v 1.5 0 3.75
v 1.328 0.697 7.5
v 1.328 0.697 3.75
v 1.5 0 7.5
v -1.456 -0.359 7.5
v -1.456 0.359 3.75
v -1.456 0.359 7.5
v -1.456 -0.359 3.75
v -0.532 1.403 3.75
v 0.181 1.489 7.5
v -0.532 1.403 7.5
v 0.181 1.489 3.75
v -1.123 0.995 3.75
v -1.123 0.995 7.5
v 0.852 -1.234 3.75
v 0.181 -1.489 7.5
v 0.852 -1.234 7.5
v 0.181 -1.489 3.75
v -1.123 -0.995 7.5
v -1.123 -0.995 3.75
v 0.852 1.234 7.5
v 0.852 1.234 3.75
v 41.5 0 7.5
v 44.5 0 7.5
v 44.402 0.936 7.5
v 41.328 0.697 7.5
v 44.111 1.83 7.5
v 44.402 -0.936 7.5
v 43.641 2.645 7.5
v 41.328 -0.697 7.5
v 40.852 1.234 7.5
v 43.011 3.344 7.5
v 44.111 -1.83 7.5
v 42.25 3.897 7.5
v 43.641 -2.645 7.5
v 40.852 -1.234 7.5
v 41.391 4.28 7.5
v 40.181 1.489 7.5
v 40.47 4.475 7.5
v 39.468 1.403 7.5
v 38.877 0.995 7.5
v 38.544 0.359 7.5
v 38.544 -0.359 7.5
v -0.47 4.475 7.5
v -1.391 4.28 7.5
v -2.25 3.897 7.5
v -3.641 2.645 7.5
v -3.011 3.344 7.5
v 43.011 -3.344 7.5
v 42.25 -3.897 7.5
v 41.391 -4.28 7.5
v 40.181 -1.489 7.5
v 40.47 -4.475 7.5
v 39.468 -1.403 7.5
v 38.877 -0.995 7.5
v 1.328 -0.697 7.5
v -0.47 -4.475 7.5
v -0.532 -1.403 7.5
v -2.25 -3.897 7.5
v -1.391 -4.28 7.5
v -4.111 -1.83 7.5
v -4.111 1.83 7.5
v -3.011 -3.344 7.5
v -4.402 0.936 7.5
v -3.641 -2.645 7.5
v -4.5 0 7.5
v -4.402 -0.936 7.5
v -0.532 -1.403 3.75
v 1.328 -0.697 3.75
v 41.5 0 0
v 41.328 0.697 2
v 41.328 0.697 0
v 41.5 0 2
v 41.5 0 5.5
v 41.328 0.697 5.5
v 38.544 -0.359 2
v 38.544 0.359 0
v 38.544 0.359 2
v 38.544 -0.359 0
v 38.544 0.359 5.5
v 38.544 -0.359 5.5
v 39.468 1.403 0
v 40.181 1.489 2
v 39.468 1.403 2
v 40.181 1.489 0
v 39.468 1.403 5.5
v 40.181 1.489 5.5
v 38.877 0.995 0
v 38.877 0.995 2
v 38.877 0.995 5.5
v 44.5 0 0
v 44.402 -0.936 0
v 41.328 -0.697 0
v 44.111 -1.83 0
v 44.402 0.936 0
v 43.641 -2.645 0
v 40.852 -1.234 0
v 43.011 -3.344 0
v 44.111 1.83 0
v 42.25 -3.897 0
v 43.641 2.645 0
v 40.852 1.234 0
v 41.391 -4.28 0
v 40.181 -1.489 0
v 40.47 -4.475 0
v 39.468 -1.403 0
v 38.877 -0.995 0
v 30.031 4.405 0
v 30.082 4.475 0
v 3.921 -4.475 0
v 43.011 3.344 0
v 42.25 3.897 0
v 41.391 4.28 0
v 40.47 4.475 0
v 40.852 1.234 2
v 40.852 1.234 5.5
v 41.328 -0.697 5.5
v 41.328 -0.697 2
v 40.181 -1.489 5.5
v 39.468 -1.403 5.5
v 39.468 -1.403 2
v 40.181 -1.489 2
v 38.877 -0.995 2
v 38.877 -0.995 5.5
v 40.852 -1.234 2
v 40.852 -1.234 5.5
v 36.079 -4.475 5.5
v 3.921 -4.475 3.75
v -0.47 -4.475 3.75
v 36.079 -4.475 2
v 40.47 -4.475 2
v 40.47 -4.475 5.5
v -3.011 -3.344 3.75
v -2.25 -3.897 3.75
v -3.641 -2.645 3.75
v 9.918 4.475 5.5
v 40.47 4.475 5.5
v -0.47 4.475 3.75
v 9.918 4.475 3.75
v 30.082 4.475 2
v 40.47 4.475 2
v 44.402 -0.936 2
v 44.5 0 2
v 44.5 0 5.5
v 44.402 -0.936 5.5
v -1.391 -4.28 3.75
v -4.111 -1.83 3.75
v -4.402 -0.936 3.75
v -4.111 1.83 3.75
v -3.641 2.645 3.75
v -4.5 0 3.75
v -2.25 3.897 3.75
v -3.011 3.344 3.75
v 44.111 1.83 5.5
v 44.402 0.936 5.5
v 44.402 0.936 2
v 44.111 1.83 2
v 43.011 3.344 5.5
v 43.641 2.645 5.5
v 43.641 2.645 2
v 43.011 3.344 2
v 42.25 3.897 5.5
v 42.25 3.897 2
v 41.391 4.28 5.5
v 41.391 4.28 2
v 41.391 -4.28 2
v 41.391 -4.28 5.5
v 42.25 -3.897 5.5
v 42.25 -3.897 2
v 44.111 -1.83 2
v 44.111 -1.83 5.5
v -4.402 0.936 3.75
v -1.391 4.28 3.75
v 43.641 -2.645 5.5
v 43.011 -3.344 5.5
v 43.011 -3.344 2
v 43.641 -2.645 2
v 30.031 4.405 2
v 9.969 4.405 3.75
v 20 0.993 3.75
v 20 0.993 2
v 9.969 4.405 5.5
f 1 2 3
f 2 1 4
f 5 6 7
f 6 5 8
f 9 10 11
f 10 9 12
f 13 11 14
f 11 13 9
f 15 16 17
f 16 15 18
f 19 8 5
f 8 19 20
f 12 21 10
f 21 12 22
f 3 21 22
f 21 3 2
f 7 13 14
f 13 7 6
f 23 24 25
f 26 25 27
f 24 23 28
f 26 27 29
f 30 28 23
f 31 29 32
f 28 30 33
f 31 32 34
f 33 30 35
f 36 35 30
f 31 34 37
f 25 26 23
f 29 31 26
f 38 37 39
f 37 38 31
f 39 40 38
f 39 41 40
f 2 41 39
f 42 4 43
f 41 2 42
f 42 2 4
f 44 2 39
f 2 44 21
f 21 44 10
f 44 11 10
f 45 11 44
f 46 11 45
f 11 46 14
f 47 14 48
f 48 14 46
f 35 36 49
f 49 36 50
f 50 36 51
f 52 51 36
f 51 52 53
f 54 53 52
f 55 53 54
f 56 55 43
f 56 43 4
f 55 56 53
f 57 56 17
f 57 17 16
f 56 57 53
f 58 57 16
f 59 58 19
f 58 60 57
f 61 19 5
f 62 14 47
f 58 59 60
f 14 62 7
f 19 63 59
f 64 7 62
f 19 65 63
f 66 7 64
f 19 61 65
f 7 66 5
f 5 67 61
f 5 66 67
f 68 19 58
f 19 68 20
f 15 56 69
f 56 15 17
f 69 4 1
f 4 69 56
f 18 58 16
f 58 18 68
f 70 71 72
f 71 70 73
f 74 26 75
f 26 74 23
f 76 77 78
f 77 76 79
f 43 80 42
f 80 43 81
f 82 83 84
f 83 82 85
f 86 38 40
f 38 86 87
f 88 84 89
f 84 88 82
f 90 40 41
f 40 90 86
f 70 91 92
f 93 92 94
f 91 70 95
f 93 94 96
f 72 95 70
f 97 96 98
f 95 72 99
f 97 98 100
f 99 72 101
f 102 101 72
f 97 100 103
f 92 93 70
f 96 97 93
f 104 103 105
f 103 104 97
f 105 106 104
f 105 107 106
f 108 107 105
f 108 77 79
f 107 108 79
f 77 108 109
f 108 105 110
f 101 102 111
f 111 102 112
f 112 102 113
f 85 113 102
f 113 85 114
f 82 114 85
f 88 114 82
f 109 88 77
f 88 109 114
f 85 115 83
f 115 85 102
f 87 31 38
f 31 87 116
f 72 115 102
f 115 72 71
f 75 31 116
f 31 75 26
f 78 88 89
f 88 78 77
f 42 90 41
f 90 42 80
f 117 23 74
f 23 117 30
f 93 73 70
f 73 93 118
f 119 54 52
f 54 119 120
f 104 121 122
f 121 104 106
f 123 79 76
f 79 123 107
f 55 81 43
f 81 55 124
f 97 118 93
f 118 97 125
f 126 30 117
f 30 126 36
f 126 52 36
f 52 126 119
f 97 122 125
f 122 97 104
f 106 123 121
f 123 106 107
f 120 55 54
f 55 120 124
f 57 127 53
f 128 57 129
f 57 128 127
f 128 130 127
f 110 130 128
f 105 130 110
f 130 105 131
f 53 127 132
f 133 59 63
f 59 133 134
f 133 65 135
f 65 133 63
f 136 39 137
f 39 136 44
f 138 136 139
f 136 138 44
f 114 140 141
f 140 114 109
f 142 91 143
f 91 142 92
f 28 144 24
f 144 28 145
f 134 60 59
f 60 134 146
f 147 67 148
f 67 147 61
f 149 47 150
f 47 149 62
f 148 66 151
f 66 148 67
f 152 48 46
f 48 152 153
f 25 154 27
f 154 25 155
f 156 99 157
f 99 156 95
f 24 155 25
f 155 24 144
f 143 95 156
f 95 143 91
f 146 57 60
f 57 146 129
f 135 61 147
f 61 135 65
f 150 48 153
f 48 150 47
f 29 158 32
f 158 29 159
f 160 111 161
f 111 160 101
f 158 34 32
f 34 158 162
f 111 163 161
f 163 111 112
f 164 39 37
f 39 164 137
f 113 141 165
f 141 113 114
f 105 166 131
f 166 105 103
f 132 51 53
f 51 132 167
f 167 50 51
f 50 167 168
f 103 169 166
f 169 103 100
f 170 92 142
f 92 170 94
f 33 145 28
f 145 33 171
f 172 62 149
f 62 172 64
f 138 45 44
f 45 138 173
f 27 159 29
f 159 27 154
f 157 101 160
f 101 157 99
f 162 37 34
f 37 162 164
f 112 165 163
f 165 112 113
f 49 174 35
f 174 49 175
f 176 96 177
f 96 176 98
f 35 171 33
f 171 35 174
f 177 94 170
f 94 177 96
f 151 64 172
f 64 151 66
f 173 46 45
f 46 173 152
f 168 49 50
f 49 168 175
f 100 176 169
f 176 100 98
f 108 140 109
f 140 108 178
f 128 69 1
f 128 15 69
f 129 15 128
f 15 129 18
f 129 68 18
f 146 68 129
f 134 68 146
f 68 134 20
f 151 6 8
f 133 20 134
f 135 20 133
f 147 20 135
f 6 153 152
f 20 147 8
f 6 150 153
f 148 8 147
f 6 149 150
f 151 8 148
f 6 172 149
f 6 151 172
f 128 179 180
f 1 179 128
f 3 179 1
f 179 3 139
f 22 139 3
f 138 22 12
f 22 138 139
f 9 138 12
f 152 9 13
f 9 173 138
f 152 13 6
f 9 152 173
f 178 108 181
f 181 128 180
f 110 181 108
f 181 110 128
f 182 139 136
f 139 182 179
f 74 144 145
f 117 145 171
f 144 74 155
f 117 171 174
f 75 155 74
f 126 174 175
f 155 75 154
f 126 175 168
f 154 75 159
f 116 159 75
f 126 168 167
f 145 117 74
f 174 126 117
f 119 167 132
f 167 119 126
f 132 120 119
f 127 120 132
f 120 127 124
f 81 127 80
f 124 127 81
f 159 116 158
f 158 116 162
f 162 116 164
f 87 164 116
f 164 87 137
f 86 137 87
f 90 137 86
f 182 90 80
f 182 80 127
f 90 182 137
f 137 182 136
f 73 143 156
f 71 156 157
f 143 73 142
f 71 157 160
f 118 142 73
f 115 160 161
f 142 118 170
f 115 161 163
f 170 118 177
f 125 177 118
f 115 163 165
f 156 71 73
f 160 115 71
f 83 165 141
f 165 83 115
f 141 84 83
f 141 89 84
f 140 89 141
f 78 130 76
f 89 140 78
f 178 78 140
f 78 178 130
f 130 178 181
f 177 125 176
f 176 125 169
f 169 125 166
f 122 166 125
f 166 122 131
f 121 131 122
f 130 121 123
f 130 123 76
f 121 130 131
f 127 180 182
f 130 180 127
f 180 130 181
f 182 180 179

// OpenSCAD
$fs=.75;

difference(){
	difference() {
		union() {
			hull() {
				cylinder(h = 7.5000000000, r = 4.5000000000);
				translate(v = [40, 0, 0]) {
					cylinder(h = 7.5000000000, r = 4.5000000000);
				}
			}
			translate(v = [40, 0, 0]) {
			}
		}
		translate(v = [0, 0, 1.8750000000]) {
			hull() {
				translate(v = [-0.0000000000, -0.0000000000, -1.8750000000]) {
					cylinder(h = 3.7500000000, r = 5.5000000000);
				}
				translate(v = [30.0000000000, 4.5000000000, 0]) {
					translate(v = [-0.0000000000, -0.0000000000, -1.8750000000]) {
						cylinder(h = 3.7500000000, r = 0.1000000000);
					}
				}
			}
		}
		translate(v = [40, 0, 3.7500000000]) {
			mirror(v = [1, 0, 0]) {
				hull() {
					translate(v = [-0.0000000000, -0.0000000000, -1.7500000000]) {
						cylinder(h = 3.5000000000, r = 5.5000000000);
					}
					translate(v = [30.0000000000, 4.5000000000, 0]) {
						translate(v = [-0.0000000000, -0.0000000000, -1.7500000000]) {
							cylinder(h = 3.5000000000, r = 0.1000000000);
						}
					}
				}
			}
		}
	}
	/* Holes Below*/
	difference(){
		union(){
			cylinder(d = 3, h = 7.5000000000);
			translate(v = [40, 0, 0]){
				cylinder(d = 3, h = 7.5000000000);
			}
		}
	} /* End Holes */ 
}
/***********************************************
*********      SolidPython code:      **********
************************************************
 
from solid import *
from solid import extensions
from math import *

class Object:
    pass

thk = 2+3.5+2

screwD=3

screwHole =  cylinder(d=screwD, h = thk).set_hole()

r1 = screwD/2.+3
l=40

base = ( hull( cylinder(r1,thk) , cylinder(r1,thk).move(x=l))
		      + screwHole
		      + screwHole.move(x=l)
	   )

def voidPart(h):
	return hull(cylinder(r1+1,h).center(), cylinder(0.1,h).center().move(x=l*.75,y=r1))

scene = (base 
	     - voidPart(thk/2.).move(z=thk/4.) 
	     - voidPart(3.5).mirror([1,0,0]).move(x=l, z=thk/2)
	     )

scad_render_to_file(scene, 'preview.scad', '$fs=.75;') 
 
************************************************/
